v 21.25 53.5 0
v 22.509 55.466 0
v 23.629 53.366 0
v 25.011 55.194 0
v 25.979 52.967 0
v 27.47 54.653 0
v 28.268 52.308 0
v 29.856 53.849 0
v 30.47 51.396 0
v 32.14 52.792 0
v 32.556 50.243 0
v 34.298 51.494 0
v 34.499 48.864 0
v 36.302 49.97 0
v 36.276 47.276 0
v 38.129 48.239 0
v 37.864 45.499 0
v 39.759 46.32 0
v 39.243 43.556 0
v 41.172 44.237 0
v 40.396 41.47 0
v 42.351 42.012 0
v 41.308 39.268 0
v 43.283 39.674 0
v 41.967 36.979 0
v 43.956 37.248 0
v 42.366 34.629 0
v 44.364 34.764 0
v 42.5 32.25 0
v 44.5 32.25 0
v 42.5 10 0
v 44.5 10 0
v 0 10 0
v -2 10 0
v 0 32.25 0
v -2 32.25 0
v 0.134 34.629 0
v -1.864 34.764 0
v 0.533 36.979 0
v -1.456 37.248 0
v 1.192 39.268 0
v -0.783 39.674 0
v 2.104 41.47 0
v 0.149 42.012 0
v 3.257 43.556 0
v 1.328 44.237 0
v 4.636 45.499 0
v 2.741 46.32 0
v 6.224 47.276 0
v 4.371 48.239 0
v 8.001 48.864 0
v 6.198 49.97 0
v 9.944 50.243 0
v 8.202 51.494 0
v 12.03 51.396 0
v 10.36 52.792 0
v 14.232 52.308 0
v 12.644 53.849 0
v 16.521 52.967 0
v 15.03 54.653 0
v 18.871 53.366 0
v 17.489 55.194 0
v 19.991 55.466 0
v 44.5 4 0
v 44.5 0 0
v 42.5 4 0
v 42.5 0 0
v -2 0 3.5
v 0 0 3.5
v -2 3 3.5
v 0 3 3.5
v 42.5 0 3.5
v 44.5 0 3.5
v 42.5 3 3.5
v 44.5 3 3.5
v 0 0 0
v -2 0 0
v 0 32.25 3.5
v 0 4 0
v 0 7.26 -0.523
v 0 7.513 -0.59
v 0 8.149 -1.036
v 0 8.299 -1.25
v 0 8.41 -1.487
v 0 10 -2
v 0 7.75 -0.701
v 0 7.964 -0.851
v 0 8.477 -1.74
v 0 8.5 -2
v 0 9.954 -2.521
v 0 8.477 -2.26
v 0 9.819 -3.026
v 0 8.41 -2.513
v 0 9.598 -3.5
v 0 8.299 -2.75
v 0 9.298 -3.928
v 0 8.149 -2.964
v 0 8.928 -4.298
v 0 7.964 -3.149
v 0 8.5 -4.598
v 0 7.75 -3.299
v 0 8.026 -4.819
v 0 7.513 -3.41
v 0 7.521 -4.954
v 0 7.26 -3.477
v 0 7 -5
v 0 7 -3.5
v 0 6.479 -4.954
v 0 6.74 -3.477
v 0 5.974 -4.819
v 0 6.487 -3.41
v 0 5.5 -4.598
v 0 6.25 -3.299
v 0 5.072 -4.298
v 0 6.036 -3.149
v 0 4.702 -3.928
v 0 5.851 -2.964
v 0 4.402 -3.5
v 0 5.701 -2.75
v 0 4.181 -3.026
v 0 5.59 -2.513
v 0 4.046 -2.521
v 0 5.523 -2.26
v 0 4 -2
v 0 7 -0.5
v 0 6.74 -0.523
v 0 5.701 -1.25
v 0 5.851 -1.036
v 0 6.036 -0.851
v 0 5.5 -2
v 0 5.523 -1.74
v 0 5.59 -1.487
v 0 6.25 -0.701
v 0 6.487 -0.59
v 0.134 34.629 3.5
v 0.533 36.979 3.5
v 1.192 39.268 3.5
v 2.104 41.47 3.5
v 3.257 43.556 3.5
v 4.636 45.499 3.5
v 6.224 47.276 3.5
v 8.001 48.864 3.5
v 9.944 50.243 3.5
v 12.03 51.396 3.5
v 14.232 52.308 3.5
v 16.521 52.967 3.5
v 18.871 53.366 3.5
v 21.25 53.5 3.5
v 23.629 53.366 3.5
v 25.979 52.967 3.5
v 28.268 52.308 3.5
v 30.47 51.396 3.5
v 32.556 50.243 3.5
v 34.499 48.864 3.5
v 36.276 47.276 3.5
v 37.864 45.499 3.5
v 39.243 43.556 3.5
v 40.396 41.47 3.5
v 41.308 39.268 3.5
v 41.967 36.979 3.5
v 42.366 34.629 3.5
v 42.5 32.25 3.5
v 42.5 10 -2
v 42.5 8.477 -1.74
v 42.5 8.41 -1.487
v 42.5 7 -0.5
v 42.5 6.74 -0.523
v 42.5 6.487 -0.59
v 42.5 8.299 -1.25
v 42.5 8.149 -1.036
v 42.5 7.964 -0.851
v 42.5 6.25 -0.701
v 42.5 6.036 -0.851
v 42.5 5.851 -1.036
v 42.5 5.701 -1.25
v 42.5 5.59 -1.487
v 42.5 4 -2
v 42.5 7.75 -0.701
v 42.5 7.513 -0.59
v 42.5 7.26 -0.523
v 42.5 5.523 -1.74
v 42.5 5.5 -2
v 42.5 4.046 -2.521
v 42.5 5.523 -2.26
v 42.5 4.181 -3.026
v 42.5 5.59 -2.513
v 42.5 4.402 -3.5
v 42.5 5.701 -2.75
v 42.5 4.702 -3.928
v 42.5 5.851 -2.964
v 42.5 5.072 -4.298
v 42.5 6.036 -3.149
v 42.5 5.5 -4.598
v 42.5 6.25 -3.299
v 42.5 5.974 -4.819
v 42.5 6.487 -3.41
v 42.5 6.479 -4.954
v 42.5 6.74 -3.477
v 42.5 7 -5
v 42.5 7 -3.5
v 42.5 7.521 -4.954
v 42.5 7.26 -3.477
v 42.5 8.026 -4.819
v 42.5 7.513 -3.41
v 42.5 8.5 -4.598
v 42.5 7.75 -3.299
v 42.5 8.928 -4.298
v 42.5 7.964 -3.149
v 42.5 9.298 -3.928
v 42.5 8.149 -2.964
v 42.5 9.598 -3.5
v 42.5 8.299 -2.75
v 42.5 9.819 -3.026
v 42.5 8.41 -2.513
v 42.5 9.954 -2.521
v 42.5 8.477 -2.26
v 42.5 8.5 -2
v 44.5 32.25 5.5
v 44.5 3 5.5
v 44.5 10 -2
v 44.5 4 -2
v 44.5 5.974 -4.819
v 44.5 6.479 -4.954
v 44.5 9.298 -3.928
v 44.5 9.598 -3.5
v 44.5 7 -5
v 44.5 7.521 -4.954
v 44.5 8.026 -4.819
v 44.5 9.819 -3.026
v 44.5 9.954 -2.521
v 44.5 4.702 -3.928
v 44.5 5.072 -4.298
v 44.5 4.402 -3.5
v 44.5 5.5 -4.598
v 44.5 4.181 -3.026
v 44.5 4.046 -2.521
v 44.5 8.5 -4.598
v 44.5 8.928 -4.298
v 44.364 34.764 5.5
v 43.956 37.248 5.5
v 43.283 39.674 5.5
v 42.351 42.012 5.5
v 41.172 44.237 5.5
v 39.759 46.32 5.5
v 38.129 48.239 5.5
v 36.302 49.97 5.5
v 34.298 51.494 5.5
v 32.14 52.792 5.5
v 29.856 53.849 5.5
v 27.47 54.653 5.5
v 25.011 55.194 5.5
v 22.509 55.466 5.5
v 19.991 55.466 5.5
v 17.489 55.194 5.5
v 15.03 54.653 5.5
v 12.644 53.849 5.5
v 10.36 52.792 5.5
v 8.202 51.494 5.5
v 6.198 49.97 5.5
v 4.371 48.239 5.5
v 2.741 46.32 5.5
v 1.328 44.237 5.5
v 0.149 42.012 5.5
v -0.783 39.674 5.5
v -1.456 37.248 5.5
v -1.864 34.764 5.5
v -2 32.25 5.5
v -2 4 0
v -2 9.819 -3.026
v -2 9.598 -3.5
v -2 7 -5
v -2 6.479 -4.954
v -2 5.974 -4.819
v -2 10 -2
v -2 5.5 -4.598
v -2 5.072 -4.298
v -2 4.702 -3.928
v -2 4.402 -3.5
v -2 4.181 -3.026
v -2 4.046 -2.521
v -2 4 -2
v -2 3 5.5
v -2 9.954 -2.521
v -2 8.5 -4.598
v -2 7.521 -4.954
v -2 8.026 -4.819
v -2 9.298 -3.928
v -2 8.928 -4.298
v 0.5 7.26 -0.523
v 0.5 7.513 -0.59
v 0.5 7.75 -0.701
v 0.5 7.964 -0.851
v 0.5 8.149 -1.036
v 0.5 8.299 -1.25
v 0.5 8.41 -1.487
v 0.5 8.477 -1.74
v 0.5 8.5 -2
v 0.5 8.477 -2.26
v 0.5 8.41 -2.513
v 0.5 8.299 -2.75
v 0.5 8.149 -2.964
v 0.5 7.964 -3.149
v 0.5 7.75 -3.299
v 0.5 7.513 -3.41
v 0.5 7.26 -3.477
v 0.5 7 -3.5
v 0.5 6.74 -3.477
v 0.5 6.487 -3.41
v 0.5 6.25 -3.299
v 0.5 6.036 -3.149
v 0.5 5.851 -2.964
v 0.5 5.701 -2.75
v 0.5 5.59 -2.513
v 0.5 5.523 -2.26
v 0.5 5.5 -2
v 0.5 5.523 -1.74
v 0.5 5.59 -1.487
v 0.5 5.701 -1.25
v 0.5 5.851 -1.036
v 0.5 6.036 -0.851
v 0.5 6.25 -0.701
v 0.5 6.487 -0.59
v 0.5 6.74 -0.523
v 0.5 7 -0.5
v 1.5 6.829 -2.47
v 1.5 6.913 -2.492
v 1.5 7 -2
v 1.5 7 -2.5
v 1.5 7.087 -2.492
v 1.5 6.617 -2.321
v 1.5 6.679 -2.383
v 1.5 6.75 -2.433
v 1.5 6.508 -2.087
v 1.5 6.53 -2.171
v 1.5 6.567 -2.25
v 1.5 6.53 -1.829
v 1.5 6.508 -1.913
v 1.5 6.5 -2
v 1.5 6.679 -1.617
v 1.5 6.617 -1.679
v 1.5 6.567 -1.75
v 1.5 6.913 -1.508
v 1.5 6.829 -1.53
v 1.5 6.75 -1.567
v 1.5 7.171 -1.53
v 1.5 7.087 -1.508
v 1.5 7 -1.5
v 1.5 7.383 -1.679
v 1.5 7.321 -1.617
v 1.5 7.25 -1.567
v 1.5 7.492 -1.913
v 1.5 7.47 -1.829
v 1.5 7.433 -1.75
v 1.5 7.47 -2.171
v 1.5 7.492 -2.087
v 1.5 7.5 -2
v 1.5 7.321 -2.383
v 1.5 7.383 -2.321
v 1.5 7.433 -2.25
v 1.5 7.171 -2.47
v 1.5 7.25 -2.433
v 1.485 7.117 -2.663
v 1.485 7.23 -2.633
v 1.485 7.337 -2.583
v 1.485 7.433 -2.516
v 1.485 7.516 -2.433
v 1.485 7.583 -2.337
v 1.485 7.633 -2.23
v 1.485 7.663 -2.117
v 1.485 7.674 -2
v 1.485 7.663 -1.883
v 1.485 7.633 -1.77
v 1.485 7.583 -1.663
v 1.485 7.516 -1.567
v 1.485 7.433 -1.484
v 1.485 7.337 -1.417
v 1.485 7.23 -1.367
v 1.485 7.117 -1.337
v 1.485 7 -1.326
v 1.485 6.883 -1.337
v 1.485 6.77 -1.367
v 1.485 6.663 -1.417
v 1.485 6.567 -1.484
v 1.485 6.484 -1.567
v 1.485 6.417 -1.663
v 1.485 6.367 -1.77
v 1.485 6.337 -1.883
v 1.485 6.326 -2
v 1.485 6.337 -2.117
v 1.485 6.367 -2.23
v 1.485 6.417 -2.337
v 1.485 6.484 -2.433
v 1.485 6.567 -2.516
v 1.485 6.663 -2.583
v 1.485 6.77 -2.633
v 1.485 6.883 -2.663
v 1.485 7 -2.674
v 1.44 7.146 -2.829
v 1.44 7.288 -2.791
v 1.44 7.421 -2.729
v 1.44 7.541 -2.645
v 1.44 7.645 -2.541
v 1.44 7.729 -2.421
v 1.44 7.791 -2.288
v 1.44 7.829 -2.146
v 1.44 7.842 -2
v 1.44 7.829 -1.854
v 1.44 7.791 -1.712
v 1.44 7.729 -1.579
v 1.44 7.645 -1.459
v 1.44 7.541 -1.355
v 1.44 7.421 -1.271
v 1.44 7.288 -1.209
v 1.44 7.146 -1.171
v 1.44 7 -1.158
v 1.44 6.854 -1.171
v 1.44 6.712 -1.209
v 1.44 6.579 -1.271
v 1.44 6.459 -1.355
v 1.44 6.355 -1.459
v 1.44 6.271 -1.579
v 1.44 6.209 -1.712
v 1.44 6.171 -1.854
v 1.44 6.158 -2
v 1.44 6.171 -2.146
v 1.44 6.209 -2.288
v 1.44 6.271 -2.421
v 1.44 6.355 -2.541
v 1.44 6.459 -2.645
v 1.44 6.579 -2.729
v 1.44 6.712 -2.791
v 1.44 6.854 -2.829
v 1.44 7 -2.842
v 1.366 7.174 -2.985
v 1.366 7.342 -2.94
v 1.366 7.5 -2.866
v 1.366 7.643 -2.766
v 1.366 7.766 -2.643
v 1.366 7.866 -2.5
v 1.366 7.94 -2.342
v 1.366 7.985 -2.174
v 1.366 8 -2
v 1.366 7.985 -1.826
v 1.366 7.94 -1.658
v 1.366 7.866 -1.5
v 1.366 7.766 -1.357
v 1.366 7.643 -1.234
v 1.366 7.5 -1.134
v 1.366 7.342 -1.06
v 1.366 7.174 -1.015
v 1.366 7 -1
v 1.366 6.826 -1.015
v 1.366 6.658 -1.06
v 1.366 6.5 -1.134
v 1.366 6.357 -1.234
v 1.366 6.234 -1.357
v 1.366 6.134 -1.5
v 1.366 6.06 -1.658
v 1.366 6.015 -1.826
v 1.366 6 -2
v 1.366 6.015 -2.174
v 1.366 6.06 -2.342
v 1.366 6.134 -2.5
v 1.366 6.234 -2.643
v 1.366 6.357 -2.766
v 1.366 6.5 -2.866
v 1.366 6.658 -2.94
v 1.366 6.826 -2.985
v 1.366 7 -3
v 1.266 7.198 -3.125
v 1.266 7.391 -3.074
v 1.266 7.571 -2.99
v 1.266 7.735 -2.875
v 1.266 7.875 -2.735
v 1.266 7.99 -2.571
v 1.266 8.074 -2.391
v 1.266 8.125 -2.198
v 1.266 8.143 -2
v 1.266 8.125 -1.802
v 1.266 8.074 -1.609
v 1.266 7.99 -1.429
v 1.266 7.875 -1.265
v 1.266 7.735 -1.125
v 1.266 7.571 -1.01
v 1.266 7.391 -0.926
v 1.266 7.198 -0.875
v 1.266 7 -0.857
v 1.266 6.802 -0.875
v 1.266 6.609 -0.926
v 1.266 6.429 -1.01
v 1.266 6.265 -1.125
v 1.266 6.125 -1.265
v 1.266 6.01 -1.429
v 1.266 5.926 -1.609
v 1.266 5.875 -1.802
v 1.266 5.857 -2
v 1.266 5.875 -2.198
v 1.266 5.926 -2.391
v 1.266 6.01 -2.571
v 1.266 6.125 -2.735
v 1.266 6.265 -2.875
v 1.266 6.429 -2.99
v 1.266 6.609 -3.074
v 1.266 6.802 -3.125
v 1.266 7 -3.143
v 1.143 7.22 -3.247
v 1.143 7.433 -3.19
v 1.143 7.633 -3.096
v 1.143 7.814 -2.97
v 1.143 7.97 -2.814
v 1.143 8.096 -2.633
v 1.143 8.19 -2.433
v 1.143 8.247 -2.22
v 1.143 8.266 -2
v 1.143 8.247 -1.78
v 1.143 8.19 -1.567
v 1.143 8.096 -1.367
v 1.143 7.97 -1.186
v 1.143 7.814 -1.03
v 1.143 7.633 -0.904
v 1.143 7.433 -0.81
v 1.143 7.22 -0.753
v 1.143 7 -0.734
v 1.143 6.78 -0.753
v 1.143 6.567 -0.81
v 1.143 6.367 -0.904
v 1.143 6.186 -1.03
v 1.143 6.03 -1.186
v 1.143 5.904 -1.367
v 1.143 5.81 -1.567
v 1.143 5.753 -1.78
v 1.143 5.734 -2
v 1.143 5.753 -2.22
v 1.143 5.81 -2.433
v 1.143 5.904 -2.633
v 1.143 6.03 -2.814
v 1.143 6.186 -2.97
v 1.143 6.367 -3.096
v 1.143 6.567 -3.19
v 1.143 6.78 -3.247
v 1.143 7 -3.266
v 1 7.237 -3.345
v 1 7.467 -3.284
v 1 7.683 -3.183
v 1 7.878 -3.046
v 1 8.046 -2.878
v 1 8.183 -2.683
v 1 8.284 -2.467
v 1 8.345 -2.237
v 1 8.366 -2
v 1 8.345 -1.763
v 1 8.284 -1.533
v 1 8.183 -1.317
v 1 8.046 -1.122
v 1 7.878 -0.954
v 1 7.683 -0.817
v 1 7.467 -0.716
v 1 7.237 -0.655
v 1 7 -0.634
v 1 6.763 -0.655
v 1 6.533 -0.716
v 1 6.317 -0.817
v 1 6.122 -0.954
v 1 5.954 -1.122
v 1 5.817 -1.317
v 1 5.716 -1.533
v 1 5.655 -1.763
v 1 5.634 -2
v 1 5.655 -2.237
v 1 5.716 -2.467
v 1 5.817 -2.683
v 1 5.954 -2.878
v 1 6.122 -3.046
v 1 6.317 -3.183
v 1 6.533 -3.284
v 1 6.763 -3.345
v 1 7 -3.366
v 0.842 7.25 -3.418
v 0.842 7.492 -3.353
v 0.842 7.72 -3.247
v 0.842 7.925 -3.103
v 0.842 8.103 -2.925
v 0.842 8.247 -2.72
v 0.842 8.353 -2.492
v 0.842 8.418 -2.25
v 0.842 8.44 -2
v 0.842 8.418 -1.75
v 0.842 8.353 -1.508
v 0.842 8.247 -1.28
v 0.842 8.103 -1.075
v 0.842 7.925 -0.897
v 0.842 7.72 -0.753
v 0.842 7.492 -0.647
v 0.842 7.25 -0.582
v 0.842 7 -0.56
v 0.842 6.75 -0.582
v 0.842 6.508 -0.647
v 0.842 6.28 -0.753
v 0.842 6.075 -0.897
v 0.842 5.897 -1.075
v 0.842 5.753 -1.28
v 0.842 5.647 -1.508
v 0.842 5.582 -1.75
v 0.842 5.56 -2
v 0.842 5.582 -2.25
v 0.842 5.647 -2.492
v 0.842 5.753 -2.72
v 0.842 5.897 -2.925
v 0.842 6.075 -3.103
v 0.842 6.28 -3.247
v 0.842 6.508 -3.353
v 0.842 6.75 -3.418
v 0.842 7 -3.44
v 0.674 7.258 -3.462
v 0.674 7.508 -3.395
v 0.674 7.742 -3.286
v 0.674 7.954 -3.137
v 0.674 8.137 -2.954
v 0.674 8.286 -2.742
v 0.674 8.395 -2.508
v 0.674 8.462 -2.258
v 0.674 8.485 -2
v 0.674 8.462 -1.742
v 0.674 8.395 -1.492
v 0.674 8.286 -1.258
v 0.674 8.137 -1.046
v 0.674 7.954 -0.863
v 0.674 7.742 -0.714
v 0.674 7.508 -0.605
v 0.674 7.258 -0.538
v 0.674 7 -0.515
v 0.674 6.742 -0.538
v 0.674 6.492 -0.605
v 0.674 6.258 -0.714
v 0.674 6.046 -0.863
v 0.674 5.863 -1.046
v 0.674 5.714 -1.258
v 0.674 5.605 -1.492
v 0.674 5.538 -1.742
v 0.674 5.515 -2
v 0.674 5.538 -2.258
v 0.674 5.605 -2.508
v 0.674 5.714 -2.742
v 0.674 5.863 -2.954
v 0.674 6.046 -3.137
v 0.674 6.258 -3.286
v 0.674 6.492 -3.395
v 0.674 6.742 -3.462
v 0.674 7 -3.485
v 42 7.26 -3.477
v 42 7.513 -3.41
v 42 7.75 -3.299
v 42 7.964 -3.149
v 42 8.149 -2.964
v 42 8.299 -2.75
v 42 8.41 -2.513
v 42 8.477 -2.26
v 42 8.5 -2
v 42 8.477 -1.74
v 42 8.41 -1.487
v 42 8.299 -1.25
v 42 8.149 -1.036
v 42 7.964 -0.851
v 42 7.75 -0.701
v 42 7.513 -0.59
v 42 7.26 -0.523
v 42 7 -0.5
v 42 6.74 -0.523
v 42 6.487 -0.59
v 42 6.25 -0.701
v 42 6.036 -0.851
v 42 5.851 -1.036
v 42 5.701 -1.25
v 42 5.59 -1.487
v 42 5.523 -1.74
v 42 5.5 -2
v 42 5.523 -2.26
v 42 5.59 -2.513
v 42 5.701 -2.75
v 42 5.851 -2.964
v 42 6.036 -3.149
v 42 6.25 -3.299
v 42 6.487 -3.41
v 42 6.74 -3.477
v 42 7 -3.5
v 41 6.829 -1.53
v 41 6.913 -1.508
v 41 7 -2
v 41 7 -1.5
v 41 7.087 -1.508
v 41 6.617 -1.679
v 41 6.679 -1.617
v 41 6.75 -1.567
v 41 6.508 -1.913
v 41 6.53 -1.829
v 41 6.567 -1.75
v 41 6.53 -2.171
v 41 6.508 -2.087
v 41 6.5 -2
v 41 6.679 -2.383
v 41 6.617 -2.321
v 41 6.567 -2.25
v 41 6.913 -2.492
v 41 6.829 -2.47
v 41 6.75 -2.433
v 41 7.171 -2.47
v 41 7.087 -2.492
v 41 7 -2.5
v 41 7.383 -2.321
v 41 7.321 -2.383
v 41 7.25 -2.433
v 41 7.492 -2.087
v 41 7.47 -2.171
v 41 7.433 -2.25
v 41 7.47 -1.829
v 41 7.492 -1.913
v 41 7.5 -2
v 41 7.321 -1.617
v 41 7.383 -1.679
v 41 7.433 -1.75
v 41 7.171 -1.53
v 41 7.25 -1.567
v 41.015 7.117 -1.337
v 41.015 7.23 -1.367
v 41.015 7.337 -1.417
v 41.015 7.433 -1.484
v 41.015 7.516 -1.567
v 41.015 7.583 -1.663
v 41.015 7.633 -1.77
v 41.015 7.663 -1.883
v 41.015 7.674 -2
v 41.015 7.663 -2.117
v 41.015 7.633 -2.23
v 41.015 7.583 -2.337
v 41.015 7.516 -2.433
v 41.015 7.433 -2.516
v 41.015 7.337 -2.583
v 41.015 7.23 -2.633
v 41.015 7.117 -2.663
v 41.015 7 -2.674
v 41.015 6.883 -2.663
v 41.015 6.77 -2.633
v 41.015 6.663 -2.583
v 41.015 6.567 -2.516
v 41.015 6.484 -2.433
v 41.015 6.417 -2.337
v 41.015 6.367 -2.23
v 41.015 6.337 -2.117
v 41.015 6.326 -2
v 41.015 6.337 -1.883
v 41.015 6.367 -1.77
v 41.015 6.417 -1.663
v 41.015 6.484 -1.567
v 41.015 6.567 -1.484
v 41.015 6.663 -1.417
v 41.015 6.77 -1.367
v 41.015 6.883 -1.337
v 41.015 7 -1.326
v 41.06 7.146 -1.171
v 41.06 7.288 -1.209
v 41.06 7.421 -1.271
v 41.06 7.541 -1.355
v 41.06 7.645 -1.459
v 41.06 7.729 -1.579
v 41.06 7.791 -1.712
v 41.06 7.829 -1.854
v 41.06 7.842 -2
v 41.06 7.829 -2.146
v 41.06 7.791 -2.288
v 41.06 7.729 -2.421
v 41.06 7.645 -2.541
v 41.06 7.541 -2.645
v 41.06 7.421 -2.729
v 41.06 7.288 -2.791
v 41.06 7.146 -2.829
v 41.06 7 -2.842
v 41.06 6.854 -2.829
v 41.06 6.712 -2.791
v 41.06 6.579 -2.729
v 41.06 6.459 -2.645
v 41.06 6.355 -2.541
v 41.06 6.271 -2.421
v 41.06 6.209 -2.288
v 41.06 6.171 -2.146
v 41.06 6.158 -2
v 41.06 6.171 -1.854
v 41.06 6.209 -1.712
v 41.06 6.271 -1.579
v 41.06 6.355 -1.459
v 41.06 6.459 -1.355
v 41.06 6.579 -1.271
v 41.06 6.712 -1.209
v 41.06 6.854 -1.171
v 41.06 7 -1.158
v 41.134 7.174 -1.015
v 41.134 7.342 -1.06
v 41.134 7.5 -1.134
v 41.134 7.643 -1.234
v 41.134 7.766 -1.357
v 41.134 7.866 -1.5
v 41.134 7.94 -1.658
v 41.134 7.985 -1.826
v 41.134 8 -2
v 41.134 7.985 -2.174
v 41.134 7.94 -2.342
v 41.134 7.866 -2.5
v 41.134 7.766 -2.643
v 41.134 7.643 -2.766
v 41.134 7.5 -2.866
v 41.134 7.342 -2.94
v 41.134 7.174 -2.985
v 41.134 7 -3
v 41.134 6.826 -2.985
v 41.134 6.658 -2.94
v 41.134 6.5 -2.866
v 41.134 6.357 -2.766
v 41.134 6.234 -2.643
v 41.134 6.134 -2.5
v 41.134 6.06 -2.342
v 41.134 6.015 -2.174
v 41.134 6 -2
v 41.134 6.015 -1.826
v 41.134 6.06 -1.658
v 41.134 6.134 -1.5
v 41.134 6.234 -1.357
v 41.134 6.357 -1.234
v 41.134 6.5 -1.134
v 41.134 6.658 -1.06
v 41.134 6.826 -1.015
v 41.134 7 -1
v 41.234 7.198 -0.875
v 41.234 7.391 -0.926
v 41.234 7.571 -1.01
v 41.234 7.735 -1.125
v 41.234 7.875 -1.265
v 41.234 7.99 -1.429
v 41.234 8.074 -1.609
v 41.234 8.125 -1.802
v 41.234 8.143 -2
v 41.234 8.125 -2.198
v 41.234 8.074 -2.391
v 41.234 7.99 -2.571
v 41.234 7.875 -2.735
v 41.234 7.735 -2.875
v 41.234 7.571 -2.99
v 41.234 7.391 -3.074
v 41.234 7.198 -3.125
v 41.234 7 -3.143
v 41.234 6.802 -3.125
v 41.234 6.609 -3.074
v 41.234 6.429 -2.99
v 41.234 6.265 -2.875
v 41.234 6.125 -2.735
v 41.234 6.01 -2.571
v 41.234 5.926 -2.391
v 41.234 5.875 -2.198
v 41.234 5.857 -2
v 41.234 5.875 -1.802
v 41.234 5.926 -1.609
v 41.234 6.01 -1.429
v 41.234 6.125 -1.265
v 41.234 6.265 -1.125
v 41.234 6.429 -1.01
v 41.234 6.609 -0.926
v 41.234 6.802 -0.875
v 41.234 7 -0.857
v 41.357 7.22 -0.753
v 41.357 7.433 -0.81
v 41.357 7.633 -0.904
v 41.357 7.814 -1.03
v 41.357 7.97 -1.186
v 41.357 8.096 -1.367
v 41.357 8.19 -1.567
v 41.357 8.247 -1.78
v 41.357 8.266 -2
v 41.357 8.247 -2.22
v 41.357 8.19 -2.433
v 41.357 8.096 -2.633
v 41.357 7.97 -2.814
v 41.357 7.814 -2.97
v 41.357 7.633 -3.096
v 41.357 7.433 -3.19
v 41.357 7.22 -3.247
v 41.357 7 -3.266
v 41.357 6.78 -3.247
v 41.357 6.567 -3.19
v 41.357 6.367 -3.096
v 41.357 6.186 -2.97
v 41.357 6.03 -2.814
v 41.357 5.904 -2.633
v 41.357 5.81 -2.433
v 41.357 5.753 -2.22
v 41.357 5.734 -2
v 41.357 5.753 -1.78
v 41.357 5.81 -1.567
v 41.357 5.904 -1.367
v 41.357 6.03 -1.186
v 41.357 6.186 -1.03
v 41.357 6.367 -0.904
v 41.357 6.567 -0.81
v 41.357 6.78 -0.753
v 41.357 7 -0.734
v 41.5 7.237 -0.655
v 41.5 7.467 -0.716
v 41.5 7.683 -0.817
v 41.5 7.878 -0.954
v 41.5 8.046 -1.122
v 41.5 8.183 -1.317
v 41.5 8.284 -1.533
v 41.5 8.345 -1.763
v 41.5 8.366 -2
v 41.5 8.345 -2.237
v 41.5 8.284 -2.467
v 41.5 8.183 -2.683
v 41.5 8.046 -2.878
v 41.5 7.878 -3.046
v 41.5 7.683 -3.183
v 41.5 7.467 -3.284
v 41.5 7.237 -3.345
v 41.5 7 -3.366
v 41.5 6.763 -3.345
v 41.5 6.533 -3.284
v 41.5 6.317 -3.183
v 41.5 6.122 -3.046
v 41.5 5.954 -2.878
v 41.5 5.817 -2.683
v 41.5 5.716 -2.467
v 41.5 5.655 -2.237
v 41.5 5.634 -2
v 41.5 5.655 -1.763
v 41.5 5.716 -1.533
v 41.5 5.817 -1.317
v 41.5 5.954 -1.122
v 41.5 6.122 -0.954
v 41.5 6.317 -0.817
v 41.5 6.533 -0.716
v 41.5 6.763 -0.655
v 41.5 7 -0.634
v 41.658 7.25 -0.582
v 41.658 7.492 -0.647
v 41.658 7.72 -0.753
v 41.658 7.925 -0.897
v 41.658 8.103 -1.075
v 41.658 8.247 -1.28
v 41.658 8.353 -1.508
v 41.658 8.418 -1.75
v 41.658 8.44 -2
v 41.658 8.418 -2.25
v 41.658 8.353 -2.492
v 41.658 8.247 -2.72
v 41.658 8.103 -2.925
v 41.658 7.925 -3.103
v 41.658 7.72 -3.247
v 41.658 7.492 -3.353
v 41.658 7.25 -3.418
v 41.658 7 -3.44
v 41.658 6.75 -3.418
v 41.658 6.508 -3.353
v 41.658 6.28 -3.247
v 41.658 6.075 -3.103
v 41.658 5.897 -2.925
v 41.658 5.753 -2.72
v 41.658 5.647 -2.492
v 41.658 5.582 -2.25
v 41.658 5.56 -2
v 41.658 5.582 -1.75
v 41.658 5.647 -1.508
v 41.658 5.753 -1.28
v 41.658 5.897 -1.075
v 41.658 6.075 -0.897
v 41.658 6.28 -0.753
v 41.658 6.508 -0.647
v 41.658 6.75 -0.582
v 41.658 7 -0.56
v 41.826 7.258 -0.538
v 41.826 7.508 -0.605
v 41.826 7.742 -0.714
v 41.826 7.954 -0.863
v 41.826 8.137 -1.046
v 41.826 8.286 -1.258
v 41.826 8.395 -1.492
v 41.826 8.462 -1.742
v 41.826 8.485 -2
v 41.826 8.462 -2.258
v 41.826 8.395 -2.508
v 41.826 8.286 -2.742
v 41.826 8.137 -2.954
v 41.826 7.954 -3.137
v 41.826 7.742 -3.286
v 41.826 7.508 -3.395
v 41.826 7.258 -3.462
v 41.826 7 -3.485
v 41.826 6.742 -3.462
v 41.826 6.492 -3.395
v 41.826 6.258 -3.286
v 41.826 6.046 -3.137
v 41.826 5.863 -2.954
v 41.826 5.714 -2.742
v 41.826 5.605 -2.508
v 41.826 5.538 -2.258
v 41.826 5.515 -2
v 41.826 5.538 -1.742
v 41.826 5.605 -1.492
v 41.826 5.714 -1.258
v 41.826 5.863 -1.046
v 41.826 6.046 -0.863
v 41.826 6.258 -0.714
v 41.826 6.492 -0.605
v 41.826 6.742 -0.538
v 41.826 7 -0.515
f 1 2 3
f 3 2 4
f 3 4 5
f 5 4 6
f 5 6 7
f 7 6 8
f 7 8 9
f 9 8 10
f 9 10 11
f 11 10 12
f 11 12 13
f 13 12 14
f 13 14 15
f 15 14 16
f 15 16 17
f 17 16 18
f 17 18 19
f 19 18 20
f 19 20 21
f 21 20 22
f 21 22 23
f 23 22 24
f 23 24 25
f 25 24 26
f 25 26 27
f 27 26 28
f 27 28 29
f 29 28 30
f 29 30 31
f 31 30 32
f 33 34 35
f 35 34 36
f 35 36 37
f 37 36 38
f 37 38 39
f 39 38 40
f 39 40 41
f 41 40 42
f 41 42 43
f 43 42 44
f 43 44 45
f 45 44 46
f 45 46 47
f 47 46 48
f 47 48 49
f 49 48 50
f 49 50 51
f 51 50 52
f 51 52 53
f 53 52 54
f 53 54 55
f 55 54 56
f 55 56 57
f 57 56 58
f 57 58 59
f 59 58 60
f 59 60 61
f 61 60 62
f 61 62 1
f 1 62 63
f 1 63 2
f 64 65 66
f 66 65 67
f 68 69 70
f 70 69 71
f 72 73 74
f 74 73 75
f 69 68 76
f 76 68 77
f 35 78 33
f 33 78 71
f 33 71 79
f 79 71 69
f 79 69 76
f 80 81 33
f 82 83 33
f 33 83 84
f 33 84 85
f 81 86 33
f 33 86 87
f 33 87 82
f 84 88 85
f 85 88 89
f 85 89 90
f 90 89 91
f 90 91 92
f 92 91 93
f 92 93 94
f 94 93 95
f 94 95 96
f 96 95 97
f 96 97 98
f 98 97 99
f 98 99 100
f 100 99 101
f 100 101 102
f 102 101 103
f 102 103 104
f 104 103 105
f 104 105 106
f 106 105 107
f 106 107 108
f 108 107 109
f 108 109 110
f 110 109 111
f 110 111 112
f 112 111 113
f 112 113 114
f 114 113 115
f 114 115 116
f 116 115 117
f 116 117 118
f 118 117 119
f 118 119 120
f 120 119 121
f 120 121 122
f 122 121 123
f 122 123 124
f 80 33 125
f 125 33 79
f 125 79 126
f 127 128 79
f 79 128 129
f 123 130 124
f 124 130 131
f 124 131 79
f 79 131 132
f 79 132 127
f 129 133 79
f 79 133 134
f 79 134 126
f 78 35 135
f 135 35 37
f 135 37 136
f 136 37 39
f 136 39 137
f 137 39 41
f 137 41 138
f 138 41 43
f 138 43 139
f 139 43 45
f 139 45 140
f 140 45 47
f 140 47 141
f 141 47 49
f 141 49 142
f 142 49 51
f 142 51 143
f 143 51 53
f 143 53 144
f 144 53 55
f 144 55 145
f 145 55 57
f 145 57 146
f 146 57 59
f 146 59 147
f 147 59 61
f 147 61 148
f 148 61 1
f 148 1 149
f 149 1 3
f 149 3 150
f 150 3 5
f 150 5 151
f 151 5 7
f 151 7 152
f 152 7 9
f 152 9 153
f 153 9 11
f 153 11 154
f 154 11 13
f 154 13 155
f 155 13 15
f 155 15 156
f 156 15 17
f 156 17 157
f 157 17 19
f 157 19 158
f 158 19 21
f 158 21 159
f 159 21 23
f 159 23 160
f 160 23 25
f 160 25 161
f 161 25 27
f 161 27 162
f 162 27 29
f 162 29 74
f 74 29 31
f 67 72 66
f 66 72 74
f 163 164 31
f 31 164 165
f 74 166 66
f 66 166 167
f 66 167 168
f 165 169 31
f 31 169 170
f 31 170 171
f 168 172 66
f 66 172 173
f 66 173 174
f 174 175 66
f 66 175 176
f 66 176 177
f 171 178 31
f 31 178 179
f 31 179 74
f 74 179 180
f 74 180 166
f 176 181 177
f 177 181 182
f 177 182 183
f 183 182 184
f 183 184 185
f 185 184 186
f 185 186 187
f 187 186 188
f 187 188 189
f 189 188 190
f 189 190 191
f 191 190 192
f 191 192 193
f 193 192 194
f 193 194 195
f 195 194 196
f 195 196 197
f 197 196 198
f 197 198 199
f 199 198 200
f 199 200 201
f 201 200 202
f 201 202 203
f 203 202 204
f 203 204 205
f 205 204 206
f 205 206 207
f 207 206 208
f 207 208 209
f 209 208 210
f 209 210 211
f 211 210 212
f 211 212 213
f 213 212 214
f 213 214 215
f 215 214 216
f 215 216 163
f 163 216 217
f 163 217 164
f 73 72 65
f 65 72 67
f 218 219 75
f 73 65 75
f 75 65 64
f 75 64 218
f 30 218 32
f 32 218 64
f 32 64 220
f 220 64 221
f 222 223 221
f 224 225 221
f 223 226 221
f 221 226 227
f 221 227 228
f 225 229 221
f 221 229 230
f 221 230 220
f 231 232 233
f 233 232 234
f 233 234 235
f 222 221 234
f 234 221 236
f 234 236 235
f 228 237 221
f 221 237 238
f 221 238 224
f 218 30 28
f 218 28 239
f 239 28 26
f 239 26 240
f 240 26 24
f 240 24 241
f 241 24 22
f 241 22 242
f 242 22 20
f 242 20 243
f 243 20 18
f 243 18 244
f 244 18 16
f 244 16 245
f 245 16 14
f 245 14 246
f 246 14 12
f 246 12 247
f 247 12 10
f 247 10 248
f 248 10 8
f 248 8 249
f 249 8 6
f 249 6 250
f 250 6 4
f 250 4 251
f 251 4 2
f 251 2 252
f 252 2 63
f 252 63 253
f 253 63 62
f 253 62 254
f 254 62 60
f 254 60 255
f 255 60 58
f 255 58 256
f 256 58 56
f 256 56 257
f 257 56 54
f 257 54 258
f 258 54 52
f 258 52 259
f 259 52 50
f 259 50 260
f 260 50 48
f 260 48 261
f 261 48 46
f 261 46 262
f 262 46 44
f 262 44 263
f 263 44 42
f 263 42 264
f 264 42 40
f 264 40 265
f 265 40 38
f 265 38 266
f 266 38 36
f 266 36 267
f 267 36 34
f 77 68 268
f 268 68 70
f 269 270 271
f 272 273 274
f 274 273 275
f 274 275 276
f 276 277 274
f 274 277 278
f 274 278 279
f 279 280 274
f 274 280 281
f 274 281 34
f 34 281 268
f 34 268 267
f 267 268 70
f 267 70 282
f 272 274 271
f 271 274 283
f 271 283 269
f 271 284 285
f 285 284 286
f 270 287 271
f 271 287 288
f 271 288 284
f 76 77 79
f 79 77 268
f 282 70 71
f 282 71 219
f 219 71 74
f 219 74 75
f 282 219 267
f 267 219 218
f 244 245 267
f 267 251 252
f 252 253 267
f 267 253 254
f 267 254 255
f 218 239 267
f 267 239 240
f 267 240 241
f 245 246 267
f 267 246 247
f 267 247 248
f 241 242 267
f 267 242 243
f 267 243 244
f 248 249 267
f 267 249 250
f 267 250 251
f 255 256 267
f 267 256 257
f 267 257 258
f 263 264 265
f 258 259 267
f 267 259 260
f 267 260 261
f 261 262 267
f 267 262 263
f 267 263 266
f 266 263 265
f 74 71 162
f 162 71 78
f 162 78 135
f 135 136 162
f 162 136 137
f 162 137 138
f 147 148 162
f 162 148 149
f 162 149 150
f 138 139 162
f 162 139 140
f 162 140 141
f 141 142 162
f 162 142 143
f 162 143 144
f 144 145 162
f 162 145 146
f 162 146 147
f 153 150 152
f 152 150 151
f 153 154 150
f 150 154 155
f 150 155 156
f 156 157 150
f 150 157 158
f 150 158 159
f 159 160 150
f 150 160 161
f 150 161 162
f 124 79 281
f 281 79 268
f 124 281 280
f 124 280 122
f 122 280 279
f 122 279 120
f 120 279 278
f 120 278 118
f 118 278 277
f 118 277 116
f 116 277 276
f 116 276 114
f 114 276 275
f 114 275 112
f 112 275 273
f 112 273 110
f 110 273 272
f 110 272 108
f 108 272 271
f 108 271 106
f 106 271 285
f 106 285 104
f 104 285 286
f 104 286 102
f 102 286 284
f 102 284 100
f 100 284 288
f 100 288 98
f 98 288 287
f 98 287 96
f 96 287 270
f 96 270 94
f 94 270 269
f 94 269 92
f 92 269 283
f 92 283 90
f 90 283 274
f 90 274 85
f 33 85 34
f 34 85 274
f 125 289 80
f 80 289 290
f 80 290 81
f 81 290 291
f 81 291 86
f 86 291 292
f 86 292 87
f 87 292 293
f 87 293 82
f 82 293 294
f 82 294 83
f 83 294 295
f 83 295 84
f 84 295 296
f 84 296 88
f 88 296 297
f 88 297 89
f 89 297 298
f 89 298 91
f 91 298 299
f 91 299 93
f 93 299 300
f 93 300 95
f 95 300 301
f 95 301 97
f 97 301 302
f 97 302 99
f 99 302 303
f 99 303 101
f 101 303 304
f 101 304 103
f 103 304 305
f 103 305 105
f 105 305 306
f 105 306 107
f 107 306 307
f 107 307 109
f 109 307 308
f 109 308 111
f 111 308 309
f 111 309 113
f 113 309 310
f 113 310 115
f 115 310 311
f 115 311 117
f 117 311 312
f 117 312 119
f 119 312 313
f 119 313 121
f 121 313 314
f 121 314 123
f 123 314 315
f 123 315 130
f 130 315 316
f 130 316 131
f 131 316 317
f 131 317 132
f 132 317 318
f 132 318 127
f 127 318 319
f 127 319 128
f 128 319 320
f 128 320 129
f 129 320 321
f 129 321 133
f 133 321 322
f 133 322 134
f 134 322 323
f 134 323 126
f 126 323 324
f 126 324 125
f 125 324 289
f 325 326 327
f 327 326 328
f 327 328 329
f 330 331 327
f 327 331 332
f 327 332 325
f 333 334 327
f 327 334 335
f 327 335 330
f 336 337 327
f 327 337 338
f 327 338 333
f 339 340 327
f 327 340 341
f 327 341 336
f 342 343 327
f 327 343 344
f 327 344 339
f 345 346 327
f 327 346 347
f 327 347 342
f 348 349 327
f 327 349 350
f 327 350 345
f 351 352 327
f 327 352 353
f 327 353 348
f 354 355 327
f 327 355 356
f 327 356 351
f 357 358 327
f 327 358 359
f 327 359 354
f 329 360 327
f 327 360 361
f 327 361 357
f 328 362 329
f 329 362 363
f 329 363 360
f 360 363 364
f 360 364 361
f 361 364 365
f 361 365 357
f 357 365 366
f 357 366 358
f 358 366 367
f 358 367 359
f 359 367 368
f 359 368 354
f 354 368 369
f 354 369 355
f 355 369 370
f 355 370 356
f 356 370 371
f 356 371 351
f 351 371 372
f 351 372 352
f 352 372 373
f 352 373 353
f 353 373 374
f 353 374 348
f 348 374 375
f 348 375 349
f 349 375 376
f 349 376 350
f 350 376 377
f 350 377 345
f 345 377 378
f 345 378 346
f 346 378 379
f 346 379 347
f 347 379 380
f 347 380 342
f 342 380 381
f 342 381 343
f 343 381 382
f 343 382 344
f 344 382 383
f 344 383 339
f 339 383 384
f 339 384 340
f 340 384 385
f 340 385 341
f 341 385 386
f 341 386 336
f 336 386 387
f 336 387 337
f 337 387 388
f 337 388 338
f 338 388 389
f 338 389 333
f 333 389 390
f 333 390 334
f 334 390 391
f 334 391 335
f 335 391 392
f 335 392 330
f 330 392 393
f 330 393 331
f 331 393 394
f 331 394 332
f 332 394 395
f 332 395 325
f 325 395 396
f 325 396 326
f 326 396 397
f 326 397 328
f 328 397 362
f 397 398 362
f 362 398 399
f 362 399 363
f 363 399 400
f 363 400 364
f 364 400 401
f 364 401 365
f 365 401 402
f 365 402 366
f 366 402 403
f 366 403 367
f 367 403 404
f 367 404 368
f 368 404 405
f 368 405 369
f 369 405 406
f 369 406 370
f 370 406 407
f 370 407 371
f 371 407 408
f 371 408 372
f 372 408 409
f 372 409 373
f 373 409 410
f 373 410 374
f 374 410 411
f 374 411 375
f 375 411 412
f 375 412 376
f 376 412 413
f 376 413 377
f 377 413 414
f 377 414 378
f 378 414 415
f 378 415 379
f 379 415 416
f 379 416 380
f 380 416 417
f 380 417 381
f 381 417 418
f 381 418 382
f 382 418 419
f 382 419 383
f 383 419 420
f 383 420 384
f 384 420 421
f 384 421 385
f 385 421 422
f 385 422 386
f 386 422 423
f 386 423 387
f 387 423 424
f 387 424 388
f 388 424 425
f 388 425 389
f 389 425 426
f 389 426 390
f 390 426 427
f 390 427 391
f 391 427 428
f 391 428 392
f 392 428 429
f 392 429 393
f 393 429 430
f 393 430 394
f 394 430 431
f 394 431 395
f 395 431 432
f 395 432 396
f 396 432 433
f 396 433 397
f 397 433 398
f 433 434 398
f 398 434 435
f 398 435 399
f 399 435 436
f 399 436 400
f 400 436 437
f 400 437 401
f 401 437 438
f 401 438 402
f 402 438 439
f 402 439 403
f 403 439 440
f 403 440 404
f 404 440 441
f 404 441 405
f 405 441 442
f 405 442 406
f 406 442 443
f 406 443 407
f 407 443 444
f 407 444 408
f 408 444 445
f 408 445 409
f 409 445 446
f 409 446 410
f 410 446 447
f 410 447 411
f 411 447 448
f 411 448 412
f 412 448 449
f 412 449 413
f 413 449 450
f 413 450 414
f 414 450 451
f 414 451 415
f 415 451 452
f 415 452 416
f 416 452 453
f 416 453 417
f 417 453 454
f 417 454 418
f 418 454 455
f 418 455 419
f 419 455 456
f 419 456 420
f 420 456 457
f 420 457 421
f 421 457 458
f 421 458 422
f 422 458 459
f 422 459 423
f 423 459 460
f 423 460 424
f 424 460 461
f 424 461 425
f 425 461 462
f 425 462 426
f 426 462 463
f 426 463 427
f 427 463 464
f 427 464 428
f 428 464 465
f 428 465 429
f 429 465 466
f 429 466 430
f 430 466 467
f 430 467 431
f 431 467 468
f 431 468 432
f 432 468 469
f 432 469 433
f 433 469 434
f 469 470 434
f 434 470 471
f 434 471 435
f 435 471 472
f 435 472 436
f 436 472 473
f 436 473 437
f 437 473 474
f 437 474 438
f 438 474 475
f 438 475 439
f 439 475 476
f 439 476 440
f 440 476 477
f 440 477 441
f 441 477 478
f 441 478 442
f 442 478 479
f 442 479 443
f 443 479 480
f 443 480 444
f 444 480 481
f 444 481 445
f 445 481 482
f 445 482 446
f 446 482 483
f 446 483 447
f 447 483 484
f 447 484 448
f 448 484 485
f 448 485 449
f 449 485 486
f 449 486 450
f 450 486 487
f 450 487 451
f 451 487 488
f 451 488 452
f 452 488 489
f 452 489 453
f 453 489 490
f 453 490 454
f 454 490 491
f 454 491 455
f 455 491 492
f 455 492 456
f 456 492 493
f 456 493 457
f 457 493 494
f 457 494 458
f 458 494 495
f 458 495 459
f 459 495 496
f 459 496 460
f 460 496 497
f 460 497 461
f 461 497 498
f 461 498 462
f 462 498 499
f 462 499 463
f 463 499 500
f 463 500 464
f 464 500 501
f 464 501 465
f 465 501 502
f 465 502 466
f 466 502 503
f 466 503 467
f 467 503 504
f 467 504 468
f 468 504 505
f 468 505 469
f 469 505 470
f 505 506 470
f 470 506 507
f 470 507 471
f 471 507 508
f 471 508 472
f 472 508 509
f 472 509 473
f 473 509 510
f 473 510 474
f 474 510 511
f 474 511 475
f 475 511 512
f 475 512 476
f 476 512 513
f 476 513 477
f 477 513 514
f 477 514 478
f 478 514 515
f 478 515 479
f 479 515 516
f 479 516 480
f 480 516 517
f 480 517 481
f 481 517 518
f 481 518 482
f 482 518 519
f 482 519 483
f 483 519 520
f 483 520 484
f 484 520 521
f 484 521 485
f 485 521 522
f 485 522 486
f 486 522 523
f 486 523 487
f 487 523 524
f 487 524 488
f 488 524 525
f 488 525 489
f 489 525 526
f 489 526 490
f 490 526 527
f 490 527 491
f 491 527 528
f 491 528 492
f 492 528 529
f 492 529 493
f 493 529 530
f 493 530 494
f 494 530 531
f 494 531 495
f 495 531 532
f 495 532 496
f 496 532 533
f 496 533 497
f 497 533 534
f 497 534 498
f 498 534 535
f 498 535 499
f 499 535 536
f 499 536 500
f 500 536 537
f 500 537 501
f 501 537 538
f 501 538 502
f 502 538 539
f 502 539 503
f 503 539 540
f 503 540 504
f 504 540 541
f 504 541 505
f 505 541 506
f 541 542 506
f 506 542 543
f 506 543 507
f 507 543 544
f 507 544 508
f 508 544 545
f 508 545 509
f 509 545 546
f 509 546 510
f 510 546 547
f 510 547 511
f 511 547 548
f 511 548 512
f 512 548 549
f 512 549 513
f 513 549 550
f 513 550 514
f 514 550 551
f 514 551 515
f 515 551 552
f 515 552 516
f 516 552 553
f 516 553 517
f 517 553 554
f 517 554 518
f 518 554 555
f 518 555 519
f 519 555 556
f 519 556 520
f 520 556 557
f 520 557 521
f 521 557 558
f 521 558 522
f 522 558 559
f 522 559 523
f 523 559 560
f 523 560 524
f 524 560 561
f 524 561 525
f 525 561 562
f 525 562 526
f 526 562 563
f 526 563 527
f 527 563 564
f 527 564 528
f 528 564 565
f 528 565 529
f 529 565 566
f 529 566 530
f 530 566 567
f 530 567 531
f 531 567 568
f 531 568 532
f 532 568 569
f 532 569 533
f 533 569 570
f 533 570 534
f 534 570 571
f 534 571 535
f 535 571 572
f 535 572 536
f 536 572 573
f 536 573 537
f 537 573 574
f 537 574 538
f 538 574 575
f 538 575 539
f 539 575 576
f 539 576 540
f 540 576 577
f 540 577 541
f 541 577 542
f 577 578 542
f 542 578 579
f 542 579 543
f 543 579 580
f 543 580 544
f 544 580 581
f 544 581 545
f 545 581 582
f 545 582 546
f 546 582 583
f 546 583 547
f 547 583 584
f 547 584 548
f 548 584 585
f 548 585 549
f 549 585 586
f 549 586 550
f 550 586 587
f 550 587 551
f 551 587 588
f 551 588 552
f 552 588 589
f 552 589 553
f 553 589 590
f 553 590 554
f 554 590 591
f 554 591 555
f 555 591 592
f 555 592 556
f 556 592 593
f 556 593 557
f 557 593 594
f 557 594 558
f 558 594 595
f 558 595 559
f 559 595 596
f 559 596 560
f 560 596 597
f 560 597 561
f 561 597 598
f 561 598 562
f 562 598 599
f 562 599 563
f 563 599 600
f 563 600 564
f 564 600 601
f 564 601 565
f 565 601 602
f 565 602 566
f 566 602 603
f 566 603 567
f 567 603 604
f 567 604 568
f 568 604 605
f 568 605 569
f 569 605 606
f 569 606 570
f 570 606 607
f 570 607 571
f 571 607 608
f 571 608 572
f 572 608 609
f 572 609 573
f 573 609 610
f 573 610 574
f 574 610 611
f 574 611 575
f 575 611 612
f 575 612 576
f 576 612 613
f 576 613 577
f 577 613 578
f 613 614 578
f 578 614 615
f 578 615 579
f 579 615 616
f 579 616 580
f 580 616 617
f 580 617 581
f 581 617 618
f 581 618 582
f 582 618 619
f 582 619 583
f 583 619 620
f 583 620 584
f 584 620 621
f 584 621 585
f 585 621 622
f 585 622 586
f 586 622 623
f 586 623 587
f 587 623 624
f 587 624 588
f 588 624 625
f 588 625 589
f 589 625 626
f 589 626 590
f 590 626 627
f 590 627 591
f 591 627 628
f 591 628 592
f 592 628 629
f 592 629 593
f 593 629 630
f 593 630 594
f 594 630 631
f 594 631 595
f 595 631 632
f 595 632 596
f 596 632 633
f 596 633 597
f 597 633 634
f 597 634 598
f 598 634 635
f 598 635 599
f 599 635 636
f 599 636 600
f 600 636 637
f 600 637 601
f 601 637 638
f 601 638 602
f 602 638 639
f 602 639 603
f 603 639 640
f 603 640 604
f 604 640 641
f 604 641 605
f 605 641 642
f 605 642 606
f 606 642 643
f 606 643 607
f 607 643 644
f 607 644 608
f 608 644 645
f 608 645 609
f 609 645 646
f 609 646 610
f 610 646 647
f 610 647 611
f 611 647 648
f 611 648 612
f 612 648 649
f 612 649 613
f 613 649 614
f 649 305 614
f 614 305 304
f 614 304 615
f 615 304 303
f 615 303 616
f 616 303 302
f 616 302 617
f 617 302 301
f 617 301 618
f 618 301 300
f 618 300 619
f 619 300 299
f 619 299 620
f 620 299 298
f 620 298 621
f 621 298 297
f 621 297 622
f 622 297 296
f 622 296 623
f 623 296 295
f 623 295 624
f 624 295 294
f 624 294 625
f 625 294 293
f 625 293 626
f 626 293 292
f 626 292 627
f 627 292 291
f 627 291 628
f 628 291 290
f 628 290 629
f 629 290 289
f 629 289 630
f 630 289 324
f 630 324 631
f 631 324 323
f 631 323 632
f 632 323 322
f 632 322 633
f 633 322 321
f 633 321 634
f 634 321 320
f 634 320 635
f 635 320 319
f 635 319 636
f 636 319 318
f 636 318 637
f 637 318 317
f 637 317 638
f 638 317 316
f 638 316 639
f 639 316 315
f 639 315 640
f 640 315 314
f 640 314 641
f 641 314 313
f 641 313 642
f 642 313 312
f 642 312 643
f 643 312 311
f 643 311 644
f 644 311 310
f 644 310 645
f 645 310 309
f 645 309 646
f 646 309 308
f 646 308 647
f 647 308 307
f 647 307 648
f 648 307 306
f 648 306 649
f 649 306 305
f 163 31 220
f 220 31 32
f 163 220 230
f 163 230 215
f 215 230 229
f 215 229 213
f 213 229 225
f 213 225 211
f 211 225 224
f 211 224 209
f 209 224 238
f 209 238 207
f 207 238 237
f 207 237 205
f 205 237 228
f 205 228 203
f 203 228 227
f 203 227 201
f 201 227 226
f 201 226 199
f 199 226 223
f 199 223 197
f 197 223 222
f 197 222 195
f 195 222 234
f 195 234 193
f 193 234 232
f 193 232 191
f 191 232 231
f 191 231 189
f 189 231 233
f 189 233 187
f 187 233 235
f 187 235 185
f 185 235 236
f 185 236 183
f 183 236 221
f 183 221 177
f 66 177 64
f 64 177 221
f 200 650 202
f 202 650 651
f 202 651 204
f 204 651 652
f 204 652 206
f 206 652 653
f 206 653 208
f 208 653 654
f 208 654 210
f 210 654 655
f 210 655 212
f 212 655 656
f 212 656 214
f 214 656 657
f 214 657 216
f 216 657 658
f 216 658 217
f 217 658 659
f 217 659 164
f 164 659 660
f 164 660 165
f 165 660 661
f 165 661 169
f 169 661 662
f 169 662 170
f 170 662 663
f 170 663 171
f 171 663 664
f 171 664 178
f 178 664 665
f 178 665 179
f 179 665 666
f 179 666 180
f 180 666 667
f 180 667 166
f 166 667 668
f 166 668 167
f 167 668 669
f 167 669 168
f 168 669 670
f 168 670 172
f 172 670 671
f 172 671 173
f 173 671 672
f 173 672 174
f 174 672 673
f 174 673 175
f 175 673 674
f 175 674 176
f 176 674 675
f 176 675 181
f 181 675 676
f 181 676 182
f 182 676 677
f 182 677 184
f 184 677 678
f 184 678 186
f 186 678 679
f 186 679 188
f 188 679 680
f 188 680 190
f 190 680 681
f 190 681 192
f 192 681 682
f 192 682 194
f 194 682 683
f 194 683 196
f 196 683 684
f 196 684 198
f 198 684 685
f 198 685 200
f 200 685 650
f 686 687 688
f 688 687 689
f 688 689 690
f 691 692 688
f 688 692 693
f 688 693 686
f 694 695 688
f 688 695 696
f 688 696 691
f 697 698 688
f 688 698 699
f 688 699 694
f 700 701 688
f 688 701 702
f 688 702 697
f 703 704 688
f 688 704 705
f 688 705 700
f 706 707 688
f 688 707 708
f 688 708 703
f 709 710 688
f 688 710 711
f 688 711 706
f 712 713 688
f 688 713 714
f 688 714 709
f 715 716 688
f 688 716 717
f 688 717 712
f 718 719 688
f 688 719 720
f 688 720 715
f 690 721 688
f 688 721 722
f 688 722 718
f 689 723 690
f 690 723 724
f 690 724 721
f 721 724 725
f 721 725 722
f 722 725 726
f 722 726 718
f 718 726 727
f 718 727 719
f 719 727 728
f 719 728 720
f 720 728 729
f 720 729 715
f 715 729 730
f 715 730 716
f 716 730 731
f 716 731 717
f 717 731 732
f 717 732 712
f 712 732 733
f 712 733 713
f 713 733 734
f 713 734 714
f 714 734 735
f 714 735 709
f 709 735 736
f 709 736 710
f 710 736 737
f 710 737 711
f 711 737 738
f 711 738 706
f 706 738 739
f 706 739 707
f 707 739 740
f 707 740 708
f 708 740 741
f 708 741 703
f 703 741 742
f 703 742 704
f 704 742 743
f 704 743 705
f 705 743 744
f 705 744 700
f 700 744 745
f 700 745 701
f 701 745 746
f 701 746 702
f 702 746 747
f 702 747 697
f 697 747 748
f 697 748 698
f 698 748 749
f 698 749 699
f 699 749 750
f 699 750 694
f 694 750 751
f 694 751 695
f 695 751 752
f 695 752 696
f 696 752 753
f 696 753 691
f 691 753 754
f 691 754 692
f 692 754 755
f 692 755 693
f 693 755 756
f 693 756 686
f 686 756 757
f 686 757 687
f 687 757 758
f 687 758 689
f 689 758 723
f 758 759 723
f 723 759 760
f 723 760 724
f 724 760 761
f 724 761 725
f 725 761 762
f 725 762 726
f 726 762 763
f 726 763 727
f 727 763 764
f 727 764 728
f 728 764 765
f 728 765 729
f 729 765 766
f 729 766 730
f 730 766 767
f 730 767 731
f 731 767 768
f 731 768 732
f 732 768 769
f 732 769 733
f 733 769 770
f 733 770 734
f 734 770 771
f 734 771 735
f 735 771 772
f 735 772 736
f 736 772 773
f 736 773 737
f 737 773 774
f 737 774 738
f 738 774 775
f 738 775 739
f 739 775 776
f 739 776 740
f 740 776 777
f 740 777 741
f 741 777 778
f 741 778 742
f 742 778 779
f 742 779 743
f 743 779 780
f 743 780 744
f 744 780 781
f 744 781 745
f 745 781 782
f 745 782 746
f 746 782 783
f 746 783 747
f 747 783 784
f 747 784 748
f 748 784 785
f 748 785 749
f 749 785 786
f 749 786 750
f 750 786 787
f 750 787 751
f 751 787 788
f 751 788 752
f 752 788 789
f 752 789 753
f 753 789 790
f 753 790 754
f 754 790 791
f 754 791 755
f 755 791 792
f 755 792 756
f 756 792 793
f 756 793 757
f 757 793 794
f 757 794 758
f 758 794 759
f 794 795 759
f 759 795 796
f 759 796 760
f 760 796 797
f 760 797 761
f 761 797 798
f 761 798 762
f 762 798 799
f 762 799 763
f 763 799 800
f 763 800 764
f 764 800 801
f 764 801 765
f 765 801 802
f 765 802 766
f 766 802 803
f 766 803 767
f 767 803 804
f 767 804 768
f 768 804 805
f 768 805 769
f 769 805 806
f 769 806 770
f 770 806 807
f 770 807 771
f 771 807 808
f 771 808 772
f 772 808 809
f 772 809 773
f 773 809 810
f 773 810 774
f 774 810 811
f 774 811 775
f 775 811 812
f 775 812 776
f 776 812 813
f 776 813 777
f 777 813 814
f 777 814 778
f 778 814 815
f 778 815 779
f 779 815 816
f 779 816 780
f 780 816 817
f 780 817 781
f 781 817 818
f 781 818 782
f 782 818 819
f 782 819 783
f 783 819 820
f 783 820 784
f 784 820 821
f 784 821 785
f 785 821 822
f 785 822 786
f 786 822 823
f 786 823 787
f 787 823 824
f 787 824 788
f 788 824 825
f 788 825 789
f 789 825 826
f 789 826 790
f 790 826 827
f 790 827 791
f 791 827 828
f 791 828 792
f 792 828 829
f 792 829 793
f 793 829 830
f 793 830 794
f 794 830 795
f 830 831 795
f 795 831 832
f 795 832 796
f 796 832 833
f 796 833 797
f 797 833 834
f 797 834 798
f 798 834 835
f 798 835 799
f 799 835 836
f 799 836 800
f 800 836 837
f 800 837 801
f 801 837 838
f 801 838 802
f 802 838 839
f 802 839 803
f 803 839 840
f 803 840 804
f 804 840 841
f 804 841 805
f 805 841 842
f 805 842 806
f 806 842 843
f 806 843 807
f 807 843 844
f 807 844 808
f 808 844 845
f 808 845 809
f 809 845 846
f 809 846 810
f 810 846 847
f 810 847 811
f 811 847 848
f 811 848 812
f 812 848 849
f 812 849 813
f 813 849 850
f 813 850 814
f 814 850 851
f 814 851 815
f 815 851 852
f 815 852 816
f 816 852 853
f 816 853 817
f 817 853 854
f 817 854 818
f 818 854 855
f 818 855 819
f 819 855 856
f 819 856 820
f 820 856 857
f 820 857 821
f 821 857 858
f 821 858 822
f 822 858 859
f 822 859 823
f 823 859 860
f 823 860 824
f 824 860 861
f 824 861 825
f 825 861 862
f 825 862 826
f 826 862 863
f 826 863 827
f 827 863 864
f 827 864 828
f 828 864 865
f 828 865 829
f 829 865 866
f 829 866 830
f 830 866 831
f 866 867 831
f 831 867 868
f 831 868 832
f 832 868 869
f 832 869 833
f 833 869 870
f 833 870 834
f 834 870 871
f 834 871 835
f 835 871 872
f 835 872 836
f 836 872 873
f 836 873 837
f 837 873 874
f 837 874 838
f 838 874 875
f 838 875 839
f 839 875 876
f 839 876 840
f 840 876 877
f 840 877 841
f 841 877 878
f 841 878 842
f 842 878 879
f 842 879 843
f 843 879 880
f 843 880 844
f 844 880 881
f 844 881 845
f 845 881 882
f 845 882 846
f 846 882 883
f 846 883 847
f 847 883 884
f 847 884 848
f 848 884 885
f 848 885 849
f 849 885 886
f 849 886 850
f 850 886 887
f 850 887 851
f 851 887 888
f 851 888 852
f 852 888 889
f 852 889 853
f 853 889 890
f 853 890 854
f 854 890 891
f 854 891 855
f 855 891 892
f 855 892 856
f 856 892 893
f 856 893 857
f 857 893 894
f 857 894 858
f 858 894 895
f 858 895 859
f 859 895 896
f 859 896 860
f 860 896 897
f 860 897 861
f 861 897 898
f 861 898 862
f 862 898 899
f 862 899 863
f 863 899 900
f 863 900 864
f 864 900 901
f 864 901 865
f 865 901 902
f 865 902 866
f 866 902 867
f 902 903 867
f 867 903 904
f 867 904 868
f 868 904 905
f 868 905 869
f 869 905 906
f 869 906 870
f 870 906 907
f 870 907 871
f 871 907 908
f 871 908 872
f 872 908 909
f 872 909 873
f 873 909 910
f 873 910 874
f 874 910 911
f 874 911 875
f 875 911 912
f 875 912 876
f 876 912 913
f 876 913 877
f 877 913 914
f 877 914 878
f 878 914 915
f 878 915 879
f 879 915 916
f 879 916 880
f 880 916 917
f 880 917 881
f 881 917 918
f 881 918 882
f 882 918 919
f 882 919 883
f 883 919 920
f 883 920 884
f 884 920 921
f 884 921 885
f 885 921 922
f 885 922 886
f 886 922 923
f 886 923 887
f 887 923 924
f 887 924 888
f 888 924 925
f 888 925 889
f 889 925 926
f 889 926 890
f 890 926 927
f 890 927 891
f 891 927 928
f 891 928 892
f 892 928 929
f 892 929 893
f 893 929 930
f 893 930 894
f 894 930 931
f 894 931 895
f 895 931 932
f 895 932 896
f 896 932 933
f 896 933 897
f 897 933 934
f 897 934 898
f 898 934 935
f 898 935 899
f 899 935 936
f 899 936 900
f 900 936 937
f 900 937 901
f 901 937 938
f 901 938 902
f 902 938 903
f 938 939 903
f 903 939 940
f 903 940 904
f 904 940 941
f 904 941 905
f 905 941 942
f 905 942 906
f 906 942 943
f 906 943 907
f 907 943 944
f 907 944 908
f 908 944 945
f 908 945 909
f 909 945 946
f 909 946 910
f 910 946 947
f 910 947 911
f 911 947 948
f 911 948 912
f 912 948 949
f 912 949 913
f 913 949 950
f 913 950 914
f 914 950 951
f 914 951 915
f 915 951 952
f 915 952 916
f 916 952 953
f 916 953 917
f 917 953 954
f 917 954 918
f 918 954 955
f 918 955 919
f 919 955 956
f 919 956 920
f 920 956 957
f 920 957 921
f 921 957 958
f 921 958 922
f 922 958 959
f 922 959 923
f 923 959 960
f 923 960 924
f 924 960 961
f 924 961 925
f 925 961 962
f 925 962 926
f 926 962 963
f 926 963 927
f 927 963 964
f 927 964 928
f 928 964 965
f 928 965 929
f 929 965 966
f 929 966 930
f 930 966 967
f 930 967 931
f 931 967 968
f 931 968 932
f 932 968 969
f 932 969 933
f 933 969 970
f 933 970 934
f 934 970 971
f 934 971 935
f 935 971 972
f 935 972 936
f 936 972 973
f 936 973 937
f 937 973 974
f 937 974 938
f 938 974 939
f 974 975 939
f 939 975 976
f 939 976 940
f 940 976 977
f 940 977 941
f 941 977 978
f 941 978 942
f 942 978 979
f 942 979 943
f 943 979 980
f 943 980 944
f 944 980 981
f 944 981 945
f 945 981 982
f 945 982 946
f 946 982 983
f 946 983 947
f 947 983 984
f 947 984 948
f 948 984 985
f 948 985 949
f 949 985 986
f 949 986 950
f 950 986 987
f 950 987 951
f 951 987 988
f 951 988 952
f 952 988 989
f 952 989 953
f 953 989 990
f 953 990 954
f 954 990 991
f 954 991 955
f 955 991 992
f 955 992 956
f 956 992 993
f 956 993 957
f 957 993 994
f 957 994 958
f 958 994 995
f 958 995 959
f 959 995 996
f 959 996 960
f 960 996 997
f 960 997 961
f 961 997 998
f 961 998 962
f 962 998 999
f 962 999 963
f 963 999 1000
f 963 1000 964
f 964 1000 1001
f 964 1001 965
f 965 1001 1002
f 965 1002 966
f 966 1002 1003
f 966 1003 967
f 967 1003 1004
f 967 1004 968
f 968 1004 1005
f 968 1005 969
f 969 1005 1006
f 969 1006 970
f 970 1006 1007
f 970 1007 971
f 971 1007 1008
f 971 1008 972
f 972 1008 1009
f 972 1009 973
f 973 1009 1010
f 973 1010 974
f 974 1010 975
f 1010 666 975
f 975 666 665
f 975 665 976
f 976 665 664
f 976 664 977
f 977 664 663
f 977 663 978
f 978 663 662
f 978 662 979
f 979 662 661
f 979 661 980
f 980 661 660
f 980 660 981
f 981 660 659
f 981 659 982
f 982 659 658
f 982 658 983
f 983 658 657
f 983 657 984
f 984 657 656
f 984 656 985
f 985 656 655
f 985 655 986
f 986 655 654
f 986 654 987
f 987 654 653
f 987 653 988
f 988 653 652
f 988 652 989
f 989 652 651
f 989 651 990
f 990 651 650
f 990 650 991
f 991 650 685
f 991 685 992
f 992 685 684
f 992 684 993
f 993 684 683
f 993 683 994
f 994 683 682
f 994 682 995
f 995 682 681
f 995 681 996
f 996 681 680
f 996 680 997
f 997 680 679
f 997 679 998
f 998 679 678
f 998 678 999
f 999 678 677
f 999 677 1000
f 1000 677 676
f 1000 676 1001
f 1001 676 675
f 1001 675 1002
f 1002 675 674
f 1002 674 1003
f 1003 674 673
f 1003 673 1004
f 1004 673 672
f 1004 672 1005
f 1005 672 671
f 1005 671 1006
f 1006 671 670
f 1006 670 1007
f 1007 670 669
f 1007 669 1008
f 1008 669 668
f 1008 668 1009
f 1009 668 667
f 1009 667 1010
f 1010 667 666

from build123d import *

# Parameters (mm, degrees)
BOSS_EXTRUDE1_DEPTH  = 3.5
BOSS_EXTRUDE2_DEPTH  = 2
BOSS_EXTRUDE3_DEPTH  = 2
SKETCH4_R            = 1.5
BOSS_EXTRUDE4_DEPTH  = 1.5
FILLET1_R            = 1
FILLET1_OF_MIRROR1_R = 1


with BuildPart() as part:
    # Sketch1 → Boss-Extrude1 (new body)
    with BuildSketch(Plane.XY):
        with BuildLine():
            Line((42.5, 0), (42.5, 32.25))
            ThreePointArc((42.5, 32.25), (21.25, 53.5), (0, 32.25))
            Line((0, 32.25), (0, 0))
            Line((0, 0), (-2, 0))
            Line((-2, 0), (-2, 32.25))
            ThreePointArc((-2, 32.25), (21.25, 55.5), (44.5, 32.25))
            Line((44.5, 32.25), (44.5, 0))
            Line((44.5, 0), (42.5, 0))
        make_face()
    boss_extrude1 = extrude(amount=BOSS_EXTRUDE1_DEPTH)

    # Sketch2 → Boss-Extrude2 (add)
    with BuildSketch(Plane.XY.offset(3.5)):
        with BuildLine():
            Line((-2, 3), (44.5, 3))
            Line((44.5, 3), (44.5, 32.25))
            ThreePointArc((44.5, 32.25), (21.25, 55.5), (-2, 32.25))
            Line((-2, 32.25), (-2, 3))
        make_face()
    extrude(amount=BOSS_EXTRUDE2_DEPTH)

    # Sketch3 → Boss-Extrude3 (add)
    with BuildSketch(Plane.ZY.offset(2)):
        with BuildLine():
            Line((0, 4), (-2, 4))
            ThreePointArc((-2, 4), (-5, 7), (-2, 10))
            Line((-2, 10), (0, 10))
            Line((0, 10), (0, 4))
        make_face()
    boss_extrude3 = extrude(amount=-BOSS_EXTRUDE3_DEPTH)

    # Sketch4 → Boss-Extrude4 (add)
    with BuildSketch(Plane(origin=(0, 0, 0), x_dir=(0, 0, -1), z_dir=(1, 0, 0))):
        with Locations(Location((2, 7, 0), (0, 0, 180))):
            Circle(SKETCH4_R)
    boss_extrude4 = extrude(amount=BOSS_EXTRUDE4_DEPTH)

    # Fillet1
    fillet1_edges = [part.edges().sort_by_distance(p)[0] for p in [
        (1.5, 7, -3.5),
    ]]
    fillet(fillet1_edges, radius=FILLET1_R)

    # Mirror1: Boss-Extrude1, Boss-Extrude3, Boss-Extrude4 across plane
    add(boss_extrude1.mirror(Plane(origin=(21.25, 0, 0), x_dir=(0, 0, 1), z_dir=(1, 0, 0))))
    add(boss_extrude3.mirror(Plane(origin=(21.25, 0, 0), x_dir=(0, 0, 1), z_dir=(1, 0, 0))))
    add(boss_extrude4.mirror(Plane(origin=(21.25, 0, 0), x_dir=(0, 0, 1), z_dir=(1, 0, 0))))

    # Fillet1 of Mirror1
    fillet1_of_mirror1_edges = [part.edges().sort_by_distance(p)[0] for p in [
        (41, 7, -3.5),
    ]]
    fillet(fillet1_of_mirror1_edges, radius=FILLET1_OF_MIRROR1_R)


solid = part.part
